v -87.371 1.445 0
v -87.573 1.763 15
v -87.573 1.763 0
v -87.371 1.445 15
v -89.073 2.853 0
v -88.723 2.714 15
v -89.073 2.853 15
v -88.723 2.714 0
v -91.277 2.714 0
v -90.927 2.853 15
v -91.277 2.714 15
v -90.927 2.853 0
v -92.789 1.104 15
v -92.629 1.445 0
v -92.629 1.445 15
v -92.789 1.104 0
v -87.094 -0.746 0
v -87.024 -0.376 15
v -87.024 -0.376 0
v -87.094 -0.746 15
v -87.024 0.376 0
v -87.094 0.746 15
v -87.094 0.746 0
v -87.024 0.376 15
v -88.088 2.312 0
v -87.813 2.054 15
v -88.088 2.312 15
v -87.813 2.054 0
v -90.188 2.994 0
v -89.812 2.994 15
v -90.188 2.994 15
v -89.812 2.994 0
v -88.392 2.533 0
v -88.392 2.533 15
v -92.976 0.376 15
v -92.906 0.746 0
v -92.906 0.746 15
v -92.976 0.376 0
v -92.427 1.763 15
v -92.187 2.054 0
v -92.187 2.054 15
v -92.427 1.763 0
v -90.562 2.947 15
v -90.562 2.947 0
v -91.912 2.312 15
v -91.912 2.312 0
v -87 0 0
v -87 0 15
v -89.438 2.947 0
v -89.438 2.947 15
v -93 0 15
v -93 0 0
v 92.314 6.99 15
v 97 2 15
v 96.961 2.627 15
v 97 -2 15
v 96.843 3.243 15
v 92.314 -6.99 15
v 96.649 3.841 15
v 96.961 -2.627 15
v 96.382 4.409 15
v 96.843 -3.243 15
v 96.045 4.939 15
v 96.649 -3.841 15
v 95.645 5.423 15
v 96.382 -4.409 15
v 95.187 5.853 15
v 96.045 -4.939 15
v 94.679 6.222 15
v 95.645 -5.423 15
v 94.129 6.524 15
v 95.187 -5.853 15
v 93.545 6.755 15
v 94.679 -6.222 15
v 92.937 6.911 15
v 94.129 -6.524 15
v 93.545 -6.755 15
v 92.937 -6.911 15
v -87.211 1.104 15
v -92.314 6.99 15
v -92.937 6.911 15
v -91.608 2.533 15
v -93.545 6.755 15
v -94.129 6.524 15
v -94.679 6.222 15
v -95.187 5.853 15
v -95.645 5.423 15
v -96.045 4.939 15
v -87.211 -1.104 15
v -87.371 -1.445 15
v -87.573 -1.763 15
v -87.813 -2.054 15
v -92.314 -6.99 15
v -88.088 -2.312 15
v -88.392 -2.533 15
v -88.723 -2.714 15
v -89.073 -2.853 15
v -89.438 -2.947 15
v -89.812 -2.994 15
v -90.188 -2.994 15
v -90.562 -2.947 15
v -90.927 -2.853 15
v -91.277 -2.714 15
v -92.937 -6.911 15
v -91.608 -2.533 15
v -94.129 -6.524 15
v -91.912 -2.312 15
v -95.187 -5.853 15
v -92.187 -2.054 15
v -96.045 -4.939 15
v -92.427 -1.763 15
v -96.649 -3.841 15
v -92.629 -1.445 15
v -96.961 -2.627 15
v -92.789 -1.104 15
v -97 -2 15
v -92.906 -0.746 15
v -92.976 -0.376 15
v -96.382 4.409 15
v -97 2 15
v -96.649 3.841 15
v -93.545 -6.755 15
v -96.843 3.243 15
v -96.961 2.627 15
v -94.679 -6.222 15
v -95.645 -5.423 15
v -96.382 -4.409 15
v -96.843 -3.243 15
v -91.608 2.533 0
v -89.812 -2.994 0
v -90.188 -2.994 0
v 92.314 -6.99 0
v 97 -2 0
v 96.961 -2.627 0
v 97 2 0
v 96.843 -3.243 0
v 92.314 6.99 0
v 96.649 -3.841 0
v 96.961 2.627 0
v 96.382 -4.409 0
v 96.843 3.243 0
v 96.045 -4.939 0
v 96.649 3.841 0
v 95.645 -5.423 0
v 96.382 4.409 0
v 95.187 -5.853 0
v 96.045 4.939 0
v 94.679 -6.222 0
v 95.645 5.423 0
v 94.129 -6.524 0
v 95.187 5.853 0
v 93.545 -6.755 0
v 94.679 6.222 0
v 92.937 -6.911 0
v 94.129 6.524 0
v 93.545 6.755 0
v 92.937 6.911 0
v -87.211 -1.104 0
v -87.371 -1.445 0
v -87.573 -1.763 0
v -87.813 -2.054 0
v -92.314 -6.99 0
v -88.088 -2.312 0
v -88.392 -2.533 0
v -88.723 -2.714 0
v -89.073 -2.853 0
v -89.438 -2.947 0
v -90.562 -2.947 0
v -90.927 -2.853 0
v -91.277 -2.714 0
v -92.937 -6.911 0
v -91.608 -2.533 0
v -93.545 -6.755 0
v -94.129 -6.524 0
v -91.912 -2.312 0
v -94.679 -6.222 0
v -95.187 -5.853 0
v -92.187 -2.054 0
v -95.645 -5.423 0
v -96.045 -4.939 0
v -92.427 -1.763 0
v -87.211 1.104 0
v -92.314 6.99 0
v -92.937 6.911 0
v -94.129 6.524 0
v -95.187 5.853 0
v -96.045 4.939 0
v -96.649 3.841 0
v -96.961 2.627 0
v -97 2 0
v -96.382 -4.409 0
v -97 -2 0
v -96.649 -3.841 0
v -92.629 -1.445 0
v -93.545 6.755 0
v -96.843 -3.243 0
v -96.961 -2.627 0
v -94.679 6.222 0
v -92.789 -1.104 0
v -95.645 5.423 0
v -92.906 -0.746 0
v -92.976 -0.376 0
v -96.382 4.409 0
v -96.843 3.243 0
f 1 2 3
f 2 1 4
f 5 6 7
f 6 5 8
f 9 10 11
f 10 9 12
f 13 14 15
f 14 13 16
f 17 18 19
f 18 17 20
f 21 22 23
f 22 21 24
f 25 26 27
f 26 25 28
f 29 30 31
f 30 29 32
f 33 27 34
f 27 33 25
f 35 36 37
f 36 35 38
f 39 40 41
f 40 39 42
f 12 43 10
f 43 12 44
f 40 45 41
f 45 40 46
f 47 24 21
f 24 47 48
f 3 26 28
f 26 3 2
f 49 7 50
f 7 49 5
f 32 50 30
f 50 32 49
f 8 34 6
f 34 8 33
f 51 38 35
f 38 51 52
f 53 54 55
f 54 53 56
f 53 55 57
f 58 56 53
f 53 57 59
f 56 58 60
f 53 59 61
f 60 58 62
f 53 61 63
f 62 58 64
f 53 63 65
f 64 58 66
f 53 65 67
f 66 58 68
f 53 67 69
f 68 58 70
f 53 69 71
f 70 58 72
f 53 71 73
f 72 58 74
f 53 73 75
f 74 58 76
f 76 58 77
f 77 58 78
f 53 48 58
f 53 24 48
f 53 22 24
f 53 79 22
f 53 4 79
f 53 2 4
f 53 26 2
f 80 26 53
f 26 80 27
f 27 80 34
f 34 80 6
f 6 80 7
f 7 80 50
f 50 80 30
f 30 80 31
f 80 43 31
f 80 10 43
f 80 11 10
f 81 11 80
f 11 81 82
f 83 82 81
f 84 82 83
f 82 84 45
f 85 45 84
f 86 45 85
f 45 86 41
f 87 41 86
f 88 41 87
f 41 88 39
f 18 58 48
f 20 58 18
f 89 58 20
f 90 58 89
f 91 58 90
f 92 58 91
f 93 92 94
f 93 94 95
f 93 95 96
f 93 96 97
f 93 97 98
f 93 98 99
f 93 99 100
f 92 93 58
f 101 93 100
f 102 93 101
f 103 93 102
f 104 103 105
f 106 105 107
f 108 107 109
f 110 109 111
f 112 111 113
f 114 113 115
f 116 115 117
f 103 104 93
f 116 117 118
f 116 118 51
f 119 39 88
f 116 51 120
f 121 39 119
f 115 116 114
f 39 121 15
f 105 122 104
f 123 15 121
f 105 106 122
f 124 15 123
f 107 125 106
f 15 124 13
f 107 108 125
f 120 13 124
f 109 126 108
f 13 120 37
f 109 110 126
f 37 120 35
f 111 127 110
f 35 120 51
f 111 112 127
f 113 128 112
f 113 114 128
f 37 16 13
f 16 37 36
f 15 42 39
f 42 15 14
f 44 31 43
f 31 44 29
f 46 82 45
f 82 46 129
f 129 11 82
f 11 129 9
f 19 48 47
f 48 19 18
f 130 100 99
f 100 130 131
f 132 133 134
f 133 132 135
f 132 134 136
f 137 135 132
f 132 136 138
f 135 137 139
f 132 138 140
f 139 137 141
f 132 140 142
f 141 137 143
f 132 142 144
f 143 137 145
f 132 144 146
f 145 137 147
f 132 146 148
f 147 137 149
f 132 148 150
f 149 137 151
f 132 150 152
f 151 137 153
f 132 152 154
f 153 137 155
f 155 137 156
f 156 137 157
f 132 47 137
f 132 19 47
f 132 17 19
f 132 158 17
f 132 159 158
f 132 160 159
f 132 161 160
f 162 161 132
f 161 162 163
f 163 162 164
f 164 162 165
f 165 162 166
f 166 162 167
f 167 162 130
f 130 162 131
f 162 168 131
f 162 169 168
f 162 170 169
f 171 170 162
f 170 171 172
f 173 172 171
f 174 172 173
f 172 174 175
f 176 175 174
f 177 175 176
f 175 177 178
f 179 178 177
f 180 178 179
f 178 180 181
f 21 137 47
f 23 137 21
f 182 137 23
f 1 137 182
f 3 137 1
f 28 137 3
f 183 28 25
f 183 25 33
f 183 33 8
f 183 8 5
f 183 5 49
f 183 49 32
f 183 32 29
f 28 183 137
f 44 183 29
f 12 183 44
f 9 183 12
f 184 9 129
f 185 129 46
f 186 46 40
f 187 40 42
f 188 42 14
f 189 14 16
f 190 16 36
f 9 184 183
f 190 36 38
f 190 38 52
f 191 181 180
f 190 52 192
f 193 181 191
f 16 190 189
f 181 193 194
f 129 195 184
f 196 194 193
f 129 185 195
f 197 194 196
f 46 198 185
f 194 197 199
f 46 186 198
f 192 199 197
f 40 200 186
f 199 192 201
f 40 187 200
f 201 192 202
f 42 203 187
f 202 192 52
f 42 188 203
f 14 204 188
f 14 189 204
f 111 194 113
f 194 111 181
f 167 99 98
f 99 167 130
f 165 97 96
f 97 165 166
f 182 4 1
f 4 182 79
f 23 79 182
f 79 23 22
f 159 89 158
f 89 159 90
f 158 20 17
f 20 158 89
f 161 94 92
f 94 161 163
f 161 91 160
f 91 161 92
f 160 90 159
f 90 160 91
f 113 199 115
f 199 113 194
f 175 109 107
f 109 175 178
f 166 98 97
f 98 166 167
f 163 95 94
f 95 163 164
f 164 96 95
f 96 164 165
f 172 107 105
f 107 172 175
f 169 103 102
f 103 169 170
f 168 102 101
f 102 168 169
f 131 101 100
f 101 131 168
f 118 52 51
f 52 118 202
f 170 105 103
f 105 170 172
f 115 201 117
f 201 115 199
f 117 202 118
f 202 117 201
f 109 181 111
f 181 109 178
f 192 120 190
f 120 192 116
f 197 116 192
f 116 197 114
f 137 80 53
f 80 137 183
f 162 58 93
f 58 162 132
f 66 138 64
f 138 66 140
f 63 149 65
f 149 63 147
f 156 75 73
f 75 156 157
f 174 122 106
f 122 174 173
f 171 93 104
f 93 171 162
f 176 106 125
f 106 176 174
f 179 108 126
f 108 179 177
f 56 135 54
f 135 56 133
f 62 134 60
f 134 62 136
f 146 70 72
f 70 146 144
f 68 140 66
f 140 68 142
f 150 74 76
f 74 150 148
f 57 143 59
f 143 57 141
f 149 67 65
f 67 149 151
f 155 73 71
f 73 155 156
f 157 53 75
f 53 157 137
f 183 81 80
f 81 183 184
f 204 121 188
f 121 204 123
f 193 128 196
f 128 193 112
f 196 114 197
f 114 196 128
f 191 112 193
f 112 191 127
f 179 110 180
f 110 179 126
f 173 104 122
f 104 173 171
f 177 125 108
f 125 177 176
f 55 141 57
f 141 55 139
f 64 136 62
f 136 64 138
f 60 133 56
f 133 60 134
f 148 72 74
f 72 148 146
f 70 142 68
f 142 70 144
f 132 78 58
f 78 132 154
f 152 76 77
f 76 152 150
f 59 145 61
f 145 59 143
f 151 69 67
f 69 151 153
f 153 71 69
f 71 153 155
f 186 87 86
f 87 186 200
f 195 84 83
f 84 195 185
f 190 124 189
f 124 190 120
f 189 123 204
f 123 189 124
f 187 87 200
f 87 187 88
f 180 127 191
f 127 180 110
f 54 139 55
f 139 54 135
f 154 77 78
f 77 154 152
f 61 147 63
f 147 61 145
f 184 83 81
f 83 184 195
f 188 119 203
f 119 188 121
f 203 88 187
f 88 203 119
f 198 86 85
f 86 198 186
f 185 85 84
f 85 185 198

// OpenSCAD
$fn = 50;


difference() {
	union() {
		hull() {
			translate(v = [-92.0000000000, 2.0000000000, 0]) {
				cylinder(h = 15, r = 5);
			}
			translate(v = [92.0000000000, 2.0000000000, 0]) {
				cylinder(h = 15, r = 5);
			}
			translate(v = [-92.0000000000, -2.0000000000, 0]) {
				cylinder(h = 15, r = 5);
			}
			translate(v = [92.0000000000, -2.0000000000, 0]) {
				cylinder(h = 15, r = 5);
			}
		}
	}
	union() {
		translate(v = [-90.0000000000, 0.0000000000, 0]) {
			cylinder(h = 15, r = 3.0000000000);
		}
		translate(v = [-90.0000000000, 0.0000000000, 0]) {
			cylinder(h = 15, r = 1.5000000000);
		}
		translate(v = [-90.0000000000, 0.0000000000, 0]) {
			cylinder(h = 15, r = 1.5000000000);
		}
		translate(v = [-90.0000000000, 0.0000000000, 0]) {
			cylinder(h = 15, r = 1.5000000000);
		}
	}
}
